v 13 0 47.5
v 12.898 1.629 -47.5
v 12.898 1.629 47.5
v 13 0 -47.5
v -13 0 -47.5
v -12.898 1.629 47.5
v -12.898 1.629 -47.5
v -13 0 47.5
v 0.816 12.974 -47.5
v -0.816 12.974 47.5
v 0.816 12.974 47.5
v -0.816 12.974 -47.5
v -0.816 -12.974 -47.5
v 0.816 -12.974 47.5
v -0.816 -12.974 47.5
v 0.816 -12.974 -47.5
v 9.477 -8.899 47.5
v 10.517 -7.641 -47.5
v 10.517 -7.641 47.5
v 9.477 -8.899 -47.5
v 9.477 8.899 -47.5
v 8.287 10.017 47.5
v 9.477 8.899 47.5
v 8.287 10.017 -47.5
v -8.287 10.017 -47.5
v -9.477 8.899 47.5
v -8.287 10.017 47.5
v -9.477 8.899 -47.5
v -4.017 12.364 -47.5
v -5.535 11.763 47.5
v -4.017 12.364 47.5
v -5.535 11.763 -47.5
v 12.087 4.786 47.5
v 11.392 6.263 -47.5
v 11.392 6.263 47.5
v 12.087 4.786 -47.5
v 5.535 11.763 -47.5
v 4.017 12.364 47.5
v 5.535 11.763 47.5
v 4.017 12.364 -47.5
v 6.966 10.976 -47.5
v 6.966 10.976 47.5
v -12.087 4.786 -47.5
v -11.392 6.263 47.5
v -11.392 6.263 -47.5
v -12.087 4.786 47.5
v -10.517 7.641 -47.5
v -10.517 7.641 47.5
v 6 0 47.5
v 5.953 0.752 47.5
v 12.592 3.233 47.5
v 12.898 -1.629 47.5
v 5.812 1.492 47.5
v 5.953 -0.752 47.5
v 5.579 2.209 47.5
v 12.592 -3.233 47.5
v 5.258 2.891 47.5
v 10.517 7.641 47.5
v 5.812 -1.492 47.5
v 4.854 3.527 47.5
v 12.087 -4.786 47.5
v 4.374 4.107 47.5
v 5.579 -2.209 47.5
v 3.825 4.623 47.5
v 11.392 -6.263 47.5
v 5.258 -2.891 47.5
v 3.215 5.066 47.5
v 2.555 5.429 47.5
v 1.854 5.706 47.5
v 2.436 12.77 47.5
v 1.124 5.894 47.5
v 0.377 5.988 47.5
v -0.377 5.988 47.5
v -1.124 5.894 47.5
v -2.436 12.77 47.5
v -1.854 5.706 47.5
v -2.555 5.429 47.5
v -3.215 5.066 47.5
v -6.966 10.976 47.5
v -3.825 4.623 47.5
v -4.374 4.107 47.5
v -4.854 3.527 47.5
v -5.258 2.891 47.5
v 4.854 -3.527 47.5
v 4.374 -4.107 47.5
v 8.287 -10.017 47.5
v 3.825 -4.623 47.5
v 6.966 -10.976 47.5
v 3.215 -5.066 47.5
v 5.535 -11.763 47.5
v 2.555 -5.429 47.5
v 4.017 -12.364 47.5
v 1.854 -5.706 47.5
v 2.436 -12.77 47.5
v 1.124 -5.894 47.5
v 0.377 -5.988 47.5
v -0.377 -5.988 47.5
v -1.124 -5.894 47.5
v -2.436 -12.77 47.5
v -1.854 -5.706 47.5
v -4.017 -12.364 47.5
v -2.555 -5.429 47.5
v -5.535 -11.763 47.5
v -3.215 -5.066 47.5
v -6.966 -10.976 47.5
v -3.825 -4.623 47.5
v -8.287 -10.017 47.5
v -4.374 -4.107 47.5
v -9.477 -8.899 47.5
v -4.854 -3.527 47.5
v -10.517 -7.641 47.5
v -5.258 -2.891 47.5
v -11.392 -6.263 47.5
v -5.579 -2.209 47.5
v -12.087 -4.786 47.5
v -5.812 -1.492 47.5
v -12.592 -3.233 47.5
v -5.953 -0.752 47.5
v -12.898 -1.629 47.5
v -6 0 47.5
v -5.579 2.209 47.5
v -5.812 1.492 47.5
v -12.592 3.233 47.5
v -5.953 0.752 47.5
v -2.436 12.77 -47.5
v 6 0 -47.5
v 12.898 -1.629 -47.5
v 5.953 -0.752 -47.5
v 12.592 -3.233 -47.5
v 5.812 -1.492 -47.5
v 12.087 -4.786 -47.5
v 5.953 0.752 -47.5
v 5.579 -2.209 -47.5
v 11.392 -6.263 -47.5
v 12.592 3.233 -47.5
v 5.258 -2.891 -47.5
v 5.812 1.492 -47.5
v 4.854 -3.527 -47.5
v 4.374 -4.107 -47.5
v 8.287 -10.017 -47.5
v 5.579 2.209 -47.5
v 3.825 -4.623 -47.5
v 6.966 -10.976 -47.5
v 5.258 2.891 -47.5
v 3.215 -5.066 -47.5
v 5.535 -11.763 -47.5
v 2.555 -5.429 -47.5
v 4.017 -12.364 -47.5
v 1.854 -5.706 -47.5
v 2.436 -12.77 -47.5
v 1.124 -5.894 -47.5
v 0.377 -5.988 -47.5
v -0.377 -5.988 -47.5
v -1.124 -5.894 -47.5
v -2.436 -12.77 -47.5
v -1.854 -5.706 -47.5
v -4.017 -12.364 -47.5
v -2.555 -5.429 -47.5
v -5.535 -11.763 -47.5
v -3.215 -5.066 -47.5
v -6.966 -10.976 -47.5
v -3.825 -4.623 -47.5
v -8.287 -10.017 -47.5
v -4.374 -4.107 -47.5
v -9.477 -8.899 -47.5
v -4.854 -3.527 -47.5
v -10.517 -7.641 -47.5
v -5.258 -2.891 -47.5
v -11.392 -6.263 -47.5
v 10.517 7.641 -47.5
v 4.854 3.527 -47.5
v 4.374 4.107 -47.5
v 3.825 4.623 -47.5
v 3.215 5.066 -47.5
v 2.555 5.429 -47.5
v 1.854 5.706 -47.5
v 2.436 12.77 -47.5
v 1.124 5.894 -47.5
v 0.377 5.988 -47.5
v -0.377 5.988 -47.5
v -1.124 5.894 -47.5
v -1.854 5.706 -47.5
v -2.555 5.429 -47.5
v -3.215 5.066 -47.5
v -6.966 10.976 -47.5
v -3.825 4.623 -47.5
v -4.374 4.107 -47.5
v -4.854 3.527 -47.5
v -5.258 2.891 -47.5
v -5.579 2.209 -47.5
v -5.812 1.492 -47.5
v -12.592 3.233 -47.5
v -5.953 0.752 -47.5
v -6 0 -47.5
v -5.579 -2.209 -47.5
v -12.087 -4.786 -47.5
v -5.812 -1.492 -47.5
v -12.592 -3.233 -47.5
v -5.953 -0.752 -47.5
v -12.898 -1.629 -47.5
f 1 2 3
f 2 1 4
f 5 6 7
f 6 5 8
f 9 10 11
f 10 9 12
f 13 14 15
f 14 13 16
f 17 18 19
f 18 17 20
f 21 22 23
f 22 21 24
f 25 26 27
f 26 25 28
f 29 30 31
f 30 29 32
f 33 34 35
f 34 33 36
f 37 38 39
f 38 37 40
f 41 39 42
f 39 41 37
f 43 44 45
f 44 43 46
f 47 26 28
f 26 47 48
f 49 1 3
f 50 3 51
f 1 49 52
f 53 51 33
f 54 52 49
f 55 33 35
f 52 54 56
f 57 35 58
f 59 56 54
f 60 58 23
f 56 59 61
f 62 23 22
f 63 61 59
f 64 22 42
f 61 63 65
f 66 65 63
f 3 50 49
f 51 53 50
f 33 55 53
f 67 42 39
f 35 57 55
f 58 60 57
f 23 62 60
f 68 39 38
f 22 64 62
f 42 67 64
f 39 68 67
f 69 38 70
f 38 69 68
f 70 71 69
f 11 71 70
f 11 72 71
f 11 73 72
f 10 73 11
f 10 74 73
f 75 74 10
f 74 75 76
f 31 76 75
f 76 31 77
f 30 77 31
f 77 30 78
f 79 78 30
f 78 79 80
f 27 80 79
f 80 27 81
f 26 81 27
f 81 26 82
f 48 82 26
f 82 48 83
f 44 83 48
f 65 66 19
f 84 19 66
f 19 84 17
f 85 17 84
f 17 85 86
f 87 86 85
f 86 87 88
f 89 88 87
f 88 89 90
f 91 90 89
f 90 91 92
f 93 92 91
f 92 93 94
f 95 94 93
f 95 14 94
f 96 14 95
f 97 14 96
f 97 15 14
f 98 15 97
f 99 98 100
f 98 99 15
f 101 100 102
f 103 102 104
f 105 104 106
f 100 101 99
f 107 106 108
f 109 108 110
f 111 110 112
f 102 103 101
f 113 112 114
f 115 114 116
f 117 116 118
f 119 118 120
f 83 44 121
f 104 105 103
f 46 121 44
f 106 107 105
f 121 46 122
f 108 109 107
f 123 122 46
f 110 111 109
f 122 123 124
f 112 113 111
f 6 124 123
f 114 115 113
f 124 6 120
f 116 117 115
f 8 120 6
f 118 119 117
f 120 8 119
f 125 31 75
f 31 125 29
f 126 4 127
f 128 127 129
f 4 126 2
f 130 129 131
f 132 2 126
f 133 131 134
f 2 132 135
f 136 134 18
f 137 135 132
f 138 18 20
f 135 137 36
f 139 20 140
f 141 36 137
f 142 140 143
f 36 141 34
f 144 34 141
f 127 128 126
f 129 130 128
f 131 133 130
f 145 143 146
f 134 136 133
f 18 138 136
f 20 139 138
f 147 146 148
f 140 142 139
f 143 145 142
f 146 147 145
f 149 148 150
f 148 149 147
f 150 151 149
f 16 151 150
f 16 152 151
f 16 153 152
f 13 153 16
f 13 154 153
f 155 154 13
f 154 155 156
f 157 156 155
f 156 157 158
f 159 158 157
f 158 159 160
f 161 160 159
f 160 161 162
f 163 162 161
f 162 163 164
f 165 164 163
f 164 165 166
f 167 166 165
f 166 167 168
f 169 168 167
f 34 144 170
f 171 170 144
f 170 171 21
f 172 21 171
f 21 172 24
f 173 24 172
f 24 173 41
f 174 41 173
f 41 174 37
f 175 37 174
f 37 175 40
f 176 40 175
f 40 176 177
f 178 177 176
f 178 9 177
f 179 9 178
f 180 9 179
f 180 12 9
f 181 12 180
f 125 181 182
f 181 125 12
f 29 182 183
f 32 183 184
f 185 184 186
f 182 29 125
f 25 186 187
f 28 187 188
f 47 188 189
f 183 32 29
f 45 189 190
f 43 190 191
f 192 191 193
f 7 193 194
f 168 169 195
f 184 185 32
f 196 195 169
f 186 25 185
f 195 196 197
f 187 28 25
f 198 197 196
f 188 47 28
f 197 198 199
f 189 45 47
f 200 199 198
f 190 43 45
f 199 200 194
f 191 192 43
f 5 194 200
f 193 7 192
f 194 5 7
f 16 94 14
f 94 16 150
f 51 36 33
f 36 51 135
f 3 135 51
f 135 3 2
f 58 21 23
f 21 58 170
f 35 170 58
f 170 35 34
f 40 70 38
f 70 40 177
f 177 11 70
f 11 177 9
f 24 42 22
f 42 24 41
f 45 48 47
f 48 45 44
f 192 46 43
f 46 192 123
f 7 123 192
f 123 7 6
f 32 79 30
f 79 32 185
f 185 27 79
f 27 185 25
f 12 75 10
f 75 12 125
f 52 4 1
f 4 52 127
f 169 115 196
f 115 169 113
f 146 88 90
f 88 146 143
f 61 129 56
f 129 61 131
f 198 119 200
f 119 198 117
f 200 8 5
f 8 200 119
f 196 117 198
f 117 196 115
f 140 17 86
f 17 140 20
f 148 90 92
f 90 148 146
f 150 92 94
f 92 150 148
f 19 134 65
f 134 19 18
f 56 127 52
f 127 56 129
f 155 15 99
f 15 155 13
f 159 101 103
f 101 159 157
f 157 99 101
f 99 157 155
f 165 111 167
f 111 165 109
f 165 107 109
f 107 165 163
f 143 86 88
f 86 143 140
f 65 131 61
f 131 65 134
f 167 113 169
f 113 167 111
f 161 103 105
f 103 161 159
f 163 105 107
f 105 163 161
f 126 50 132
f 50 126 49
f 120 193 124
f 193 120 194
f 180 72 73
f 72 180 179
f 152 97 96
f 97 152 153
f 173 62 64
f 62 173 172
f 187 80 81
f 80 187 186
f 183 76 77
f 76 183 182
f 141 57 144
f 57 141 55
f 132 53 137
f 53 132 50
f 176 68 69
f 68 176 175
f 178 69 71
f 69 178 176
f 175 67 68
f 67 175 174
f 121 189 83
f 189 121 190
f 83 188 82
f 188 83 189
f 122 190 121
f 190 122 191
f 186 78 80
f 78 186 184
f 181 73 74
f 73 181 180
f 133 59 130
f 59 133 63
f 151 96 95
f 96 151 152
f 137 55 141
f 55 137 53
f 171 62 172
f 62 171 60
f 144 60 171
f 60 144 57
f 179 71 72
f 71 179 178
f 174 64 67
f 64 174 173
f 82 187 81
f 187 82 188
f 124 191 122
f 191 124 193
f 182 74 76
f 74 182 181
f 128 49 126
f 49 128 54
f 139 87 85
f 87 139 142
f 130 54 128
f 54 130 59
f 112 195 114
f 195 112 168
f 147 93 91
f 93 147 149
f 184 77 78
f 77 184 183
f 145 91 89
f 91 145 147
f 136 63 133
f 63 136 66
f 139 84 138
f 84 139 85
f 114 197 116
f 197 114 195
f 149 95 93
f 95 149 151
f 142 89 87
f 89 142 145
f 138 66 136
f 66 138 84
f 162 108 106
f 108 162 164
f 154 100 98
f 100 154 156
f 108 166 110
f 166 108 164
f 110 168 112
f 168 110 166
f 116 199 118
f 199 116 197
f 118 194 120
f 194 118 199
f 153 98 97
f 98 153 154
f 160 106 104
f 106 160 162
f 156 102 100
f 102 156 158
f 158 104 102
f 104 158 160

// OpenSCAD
$fn = 50;


difference() {
	union() {
		translate(v = [0, 0, -47.5000000000]) {
			cylinder(h = 95, r = 13.0000000000);
		}
	}
	union() {
		translate(v = [0, 0, -100.0000000000]) {
			cylinder(h = 200, r = 6);
		}
	}
}
